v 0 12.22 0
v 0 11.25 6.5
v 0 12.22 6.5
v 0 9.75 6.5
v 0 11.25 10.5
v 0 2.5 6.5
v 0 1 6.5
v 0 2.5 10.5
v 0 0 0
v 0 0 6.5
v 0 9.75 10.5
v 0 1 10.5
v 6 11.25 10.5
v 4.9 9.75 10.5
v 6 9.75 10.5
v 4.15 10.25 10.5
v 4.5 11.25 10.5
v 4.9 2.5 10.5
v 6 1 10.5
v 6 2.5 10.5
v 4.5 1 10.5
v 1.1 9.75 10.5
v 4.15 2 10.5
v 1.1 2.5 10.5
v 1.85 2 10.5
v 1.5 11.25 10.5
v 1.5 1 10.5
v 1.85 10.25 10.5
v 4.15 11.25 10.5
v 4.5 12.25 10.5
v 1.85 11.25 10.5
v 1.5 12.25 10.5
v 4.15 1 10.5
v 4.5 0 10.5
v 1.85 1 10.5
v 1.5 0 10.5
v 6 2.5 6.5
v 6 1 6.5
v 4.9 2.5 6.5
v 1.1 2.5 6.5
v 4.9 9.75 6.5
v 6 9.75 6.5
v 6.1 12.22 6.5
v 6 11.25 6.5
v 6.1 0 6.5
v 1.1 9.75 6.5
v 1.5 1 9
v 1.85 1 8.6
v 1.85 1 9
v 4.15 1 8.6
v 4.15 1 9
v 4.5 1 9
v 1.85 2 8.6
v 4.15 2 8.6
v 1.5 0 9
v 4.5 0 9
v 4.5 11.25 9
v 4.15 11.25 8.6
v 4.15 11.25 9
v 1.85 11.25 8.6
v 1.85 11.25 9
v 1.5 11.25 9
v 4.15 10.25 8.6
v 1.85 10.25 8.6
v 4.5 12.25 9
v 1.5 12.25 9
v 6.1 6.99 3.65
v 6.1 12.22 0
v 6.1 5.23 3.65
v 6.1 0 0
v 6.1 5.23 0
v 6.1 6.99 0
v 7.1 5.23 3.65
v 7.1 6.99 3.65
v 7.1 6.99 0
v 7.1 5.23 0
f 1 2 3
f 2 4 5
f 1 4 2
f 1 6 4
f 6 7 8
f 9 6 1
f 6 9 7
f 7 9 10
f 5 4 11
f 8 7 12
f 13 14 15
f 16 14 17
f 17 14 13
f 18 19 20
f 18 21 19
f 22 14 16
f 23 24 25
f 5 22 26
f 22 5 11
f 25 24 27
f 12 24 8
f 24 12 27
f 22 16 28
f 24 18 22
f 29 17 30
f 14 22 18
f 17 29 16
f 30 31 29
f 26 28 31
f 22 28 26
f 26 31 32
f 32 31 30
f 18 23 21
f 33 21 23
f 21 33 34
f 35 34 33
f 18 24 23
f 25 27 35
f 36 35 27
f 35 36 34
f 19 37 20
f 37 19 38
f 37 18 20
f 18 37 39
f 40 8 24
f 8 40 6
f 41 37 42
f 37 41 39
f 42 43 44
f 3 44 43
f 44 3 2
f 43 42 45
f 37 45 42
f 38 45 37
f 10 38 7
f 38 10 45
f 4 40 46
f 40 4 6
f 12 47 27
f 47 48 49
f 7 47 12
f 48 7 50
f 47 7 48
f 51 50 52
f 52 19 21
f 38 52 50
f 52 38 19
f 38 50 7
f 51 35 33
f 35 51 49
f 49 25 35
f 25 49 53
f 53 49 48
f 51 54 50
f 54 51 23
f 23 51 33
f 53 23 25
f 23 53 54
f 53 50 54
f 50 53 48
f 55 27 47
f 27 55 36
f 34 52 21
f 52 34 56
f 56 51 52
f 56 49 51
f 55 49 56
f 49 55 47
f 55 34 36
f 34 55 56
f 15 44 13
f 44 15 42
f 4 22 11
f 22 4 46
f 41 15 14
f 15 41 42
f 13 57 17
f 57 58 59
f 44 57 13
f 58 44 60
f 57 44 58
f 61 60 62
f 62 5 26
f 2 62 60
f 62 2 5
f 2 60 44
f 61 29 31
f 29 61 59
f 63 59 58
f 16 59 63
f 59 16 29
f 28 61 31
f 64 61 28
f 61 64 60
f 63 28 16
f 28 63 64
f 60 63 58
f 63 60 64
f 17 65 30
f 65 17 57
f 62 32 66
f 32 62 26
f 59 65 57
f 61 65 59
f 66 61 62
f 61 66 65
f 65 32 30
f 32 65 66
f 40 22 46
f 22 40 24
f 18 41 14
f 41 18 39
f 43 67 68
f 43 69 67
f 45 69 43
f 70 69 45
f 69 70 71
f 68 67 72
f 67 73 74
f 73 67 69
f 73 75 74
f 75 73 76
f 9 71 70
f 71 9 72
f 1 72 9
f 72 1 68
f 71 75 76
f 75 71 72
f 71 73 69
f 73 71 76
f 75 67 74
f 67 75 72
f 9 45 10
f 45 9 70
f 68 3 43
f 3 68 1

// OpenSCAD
//
//faulhaber1717 connector
//Author Y.Nakagawa
//Date: 2025/1/10
//
connector1717();

module connector1717(){
  s1w = 3; //mm 小さい突起の幅
  s1d = 1; //mm 小さい突起の厚み
  s1h = 1.5; //mm 小さい突起の高さ
  s2h = 4; //mm コネクタ上部の高さ
  s2d = 1.5; //mm コネクタ上部の幅
  s2w =  6; //mm コネクタ上部の幅
  s2w2 = 3.8; //mm コネクタ上部の中幅
  s2d2 = 7.25; //mm
  s3h = 6.5; //mm 
  s3d =12.22; //mm
  s3w = 6.1; //mm
  s4h = 3.65; //
  s4w = 1; //mm
  s4d = 1.76; // 
  s5w = 2.3;
  s5d = 1;
  s5h = 2;

  color("lightgray"){
    translate([s3w,(s3d-s4d)/2,0])cube([s4w, s4d, s4h]);
    cube([s3w, s3d, s3h]);

    translate([0,0,s3h])
    {
      union(){
        translate([(s2w-s1w)/2,0,s2h-s1h]) cube([s1w, s1d, s1h]);
        difference(){
        translate([0,s1d,0]) cube([s2w, s2d, s2h]);
        translate([(s2w-s5w)/2,s1d,s2h-s5h+0.1]) cube([s5w, s5d, s5h]);
        }
      }
      translate([(s2w-s2w2)/2,s1d+s2d,0]) cube([s2w2, s2d2, s2h]);

      //opposite side
      translate([s2w, s1d*2+s2d*2+s2d2,0]) rotate([0,0,180])
      union(){
        translate([(s2w-s1w)/2,0,s2h-s1h]) cube([s1w, s1d, s1h]);
        difference(){
        translate([0,s1d,0]) cube([s2w, s2d, s2h]);
        translate([(s2w-s5w)/2,s1d,s2h-s5h+0.1]) cube([s5w, s5d, s5h]);
        }
      }
    }
  }
}
